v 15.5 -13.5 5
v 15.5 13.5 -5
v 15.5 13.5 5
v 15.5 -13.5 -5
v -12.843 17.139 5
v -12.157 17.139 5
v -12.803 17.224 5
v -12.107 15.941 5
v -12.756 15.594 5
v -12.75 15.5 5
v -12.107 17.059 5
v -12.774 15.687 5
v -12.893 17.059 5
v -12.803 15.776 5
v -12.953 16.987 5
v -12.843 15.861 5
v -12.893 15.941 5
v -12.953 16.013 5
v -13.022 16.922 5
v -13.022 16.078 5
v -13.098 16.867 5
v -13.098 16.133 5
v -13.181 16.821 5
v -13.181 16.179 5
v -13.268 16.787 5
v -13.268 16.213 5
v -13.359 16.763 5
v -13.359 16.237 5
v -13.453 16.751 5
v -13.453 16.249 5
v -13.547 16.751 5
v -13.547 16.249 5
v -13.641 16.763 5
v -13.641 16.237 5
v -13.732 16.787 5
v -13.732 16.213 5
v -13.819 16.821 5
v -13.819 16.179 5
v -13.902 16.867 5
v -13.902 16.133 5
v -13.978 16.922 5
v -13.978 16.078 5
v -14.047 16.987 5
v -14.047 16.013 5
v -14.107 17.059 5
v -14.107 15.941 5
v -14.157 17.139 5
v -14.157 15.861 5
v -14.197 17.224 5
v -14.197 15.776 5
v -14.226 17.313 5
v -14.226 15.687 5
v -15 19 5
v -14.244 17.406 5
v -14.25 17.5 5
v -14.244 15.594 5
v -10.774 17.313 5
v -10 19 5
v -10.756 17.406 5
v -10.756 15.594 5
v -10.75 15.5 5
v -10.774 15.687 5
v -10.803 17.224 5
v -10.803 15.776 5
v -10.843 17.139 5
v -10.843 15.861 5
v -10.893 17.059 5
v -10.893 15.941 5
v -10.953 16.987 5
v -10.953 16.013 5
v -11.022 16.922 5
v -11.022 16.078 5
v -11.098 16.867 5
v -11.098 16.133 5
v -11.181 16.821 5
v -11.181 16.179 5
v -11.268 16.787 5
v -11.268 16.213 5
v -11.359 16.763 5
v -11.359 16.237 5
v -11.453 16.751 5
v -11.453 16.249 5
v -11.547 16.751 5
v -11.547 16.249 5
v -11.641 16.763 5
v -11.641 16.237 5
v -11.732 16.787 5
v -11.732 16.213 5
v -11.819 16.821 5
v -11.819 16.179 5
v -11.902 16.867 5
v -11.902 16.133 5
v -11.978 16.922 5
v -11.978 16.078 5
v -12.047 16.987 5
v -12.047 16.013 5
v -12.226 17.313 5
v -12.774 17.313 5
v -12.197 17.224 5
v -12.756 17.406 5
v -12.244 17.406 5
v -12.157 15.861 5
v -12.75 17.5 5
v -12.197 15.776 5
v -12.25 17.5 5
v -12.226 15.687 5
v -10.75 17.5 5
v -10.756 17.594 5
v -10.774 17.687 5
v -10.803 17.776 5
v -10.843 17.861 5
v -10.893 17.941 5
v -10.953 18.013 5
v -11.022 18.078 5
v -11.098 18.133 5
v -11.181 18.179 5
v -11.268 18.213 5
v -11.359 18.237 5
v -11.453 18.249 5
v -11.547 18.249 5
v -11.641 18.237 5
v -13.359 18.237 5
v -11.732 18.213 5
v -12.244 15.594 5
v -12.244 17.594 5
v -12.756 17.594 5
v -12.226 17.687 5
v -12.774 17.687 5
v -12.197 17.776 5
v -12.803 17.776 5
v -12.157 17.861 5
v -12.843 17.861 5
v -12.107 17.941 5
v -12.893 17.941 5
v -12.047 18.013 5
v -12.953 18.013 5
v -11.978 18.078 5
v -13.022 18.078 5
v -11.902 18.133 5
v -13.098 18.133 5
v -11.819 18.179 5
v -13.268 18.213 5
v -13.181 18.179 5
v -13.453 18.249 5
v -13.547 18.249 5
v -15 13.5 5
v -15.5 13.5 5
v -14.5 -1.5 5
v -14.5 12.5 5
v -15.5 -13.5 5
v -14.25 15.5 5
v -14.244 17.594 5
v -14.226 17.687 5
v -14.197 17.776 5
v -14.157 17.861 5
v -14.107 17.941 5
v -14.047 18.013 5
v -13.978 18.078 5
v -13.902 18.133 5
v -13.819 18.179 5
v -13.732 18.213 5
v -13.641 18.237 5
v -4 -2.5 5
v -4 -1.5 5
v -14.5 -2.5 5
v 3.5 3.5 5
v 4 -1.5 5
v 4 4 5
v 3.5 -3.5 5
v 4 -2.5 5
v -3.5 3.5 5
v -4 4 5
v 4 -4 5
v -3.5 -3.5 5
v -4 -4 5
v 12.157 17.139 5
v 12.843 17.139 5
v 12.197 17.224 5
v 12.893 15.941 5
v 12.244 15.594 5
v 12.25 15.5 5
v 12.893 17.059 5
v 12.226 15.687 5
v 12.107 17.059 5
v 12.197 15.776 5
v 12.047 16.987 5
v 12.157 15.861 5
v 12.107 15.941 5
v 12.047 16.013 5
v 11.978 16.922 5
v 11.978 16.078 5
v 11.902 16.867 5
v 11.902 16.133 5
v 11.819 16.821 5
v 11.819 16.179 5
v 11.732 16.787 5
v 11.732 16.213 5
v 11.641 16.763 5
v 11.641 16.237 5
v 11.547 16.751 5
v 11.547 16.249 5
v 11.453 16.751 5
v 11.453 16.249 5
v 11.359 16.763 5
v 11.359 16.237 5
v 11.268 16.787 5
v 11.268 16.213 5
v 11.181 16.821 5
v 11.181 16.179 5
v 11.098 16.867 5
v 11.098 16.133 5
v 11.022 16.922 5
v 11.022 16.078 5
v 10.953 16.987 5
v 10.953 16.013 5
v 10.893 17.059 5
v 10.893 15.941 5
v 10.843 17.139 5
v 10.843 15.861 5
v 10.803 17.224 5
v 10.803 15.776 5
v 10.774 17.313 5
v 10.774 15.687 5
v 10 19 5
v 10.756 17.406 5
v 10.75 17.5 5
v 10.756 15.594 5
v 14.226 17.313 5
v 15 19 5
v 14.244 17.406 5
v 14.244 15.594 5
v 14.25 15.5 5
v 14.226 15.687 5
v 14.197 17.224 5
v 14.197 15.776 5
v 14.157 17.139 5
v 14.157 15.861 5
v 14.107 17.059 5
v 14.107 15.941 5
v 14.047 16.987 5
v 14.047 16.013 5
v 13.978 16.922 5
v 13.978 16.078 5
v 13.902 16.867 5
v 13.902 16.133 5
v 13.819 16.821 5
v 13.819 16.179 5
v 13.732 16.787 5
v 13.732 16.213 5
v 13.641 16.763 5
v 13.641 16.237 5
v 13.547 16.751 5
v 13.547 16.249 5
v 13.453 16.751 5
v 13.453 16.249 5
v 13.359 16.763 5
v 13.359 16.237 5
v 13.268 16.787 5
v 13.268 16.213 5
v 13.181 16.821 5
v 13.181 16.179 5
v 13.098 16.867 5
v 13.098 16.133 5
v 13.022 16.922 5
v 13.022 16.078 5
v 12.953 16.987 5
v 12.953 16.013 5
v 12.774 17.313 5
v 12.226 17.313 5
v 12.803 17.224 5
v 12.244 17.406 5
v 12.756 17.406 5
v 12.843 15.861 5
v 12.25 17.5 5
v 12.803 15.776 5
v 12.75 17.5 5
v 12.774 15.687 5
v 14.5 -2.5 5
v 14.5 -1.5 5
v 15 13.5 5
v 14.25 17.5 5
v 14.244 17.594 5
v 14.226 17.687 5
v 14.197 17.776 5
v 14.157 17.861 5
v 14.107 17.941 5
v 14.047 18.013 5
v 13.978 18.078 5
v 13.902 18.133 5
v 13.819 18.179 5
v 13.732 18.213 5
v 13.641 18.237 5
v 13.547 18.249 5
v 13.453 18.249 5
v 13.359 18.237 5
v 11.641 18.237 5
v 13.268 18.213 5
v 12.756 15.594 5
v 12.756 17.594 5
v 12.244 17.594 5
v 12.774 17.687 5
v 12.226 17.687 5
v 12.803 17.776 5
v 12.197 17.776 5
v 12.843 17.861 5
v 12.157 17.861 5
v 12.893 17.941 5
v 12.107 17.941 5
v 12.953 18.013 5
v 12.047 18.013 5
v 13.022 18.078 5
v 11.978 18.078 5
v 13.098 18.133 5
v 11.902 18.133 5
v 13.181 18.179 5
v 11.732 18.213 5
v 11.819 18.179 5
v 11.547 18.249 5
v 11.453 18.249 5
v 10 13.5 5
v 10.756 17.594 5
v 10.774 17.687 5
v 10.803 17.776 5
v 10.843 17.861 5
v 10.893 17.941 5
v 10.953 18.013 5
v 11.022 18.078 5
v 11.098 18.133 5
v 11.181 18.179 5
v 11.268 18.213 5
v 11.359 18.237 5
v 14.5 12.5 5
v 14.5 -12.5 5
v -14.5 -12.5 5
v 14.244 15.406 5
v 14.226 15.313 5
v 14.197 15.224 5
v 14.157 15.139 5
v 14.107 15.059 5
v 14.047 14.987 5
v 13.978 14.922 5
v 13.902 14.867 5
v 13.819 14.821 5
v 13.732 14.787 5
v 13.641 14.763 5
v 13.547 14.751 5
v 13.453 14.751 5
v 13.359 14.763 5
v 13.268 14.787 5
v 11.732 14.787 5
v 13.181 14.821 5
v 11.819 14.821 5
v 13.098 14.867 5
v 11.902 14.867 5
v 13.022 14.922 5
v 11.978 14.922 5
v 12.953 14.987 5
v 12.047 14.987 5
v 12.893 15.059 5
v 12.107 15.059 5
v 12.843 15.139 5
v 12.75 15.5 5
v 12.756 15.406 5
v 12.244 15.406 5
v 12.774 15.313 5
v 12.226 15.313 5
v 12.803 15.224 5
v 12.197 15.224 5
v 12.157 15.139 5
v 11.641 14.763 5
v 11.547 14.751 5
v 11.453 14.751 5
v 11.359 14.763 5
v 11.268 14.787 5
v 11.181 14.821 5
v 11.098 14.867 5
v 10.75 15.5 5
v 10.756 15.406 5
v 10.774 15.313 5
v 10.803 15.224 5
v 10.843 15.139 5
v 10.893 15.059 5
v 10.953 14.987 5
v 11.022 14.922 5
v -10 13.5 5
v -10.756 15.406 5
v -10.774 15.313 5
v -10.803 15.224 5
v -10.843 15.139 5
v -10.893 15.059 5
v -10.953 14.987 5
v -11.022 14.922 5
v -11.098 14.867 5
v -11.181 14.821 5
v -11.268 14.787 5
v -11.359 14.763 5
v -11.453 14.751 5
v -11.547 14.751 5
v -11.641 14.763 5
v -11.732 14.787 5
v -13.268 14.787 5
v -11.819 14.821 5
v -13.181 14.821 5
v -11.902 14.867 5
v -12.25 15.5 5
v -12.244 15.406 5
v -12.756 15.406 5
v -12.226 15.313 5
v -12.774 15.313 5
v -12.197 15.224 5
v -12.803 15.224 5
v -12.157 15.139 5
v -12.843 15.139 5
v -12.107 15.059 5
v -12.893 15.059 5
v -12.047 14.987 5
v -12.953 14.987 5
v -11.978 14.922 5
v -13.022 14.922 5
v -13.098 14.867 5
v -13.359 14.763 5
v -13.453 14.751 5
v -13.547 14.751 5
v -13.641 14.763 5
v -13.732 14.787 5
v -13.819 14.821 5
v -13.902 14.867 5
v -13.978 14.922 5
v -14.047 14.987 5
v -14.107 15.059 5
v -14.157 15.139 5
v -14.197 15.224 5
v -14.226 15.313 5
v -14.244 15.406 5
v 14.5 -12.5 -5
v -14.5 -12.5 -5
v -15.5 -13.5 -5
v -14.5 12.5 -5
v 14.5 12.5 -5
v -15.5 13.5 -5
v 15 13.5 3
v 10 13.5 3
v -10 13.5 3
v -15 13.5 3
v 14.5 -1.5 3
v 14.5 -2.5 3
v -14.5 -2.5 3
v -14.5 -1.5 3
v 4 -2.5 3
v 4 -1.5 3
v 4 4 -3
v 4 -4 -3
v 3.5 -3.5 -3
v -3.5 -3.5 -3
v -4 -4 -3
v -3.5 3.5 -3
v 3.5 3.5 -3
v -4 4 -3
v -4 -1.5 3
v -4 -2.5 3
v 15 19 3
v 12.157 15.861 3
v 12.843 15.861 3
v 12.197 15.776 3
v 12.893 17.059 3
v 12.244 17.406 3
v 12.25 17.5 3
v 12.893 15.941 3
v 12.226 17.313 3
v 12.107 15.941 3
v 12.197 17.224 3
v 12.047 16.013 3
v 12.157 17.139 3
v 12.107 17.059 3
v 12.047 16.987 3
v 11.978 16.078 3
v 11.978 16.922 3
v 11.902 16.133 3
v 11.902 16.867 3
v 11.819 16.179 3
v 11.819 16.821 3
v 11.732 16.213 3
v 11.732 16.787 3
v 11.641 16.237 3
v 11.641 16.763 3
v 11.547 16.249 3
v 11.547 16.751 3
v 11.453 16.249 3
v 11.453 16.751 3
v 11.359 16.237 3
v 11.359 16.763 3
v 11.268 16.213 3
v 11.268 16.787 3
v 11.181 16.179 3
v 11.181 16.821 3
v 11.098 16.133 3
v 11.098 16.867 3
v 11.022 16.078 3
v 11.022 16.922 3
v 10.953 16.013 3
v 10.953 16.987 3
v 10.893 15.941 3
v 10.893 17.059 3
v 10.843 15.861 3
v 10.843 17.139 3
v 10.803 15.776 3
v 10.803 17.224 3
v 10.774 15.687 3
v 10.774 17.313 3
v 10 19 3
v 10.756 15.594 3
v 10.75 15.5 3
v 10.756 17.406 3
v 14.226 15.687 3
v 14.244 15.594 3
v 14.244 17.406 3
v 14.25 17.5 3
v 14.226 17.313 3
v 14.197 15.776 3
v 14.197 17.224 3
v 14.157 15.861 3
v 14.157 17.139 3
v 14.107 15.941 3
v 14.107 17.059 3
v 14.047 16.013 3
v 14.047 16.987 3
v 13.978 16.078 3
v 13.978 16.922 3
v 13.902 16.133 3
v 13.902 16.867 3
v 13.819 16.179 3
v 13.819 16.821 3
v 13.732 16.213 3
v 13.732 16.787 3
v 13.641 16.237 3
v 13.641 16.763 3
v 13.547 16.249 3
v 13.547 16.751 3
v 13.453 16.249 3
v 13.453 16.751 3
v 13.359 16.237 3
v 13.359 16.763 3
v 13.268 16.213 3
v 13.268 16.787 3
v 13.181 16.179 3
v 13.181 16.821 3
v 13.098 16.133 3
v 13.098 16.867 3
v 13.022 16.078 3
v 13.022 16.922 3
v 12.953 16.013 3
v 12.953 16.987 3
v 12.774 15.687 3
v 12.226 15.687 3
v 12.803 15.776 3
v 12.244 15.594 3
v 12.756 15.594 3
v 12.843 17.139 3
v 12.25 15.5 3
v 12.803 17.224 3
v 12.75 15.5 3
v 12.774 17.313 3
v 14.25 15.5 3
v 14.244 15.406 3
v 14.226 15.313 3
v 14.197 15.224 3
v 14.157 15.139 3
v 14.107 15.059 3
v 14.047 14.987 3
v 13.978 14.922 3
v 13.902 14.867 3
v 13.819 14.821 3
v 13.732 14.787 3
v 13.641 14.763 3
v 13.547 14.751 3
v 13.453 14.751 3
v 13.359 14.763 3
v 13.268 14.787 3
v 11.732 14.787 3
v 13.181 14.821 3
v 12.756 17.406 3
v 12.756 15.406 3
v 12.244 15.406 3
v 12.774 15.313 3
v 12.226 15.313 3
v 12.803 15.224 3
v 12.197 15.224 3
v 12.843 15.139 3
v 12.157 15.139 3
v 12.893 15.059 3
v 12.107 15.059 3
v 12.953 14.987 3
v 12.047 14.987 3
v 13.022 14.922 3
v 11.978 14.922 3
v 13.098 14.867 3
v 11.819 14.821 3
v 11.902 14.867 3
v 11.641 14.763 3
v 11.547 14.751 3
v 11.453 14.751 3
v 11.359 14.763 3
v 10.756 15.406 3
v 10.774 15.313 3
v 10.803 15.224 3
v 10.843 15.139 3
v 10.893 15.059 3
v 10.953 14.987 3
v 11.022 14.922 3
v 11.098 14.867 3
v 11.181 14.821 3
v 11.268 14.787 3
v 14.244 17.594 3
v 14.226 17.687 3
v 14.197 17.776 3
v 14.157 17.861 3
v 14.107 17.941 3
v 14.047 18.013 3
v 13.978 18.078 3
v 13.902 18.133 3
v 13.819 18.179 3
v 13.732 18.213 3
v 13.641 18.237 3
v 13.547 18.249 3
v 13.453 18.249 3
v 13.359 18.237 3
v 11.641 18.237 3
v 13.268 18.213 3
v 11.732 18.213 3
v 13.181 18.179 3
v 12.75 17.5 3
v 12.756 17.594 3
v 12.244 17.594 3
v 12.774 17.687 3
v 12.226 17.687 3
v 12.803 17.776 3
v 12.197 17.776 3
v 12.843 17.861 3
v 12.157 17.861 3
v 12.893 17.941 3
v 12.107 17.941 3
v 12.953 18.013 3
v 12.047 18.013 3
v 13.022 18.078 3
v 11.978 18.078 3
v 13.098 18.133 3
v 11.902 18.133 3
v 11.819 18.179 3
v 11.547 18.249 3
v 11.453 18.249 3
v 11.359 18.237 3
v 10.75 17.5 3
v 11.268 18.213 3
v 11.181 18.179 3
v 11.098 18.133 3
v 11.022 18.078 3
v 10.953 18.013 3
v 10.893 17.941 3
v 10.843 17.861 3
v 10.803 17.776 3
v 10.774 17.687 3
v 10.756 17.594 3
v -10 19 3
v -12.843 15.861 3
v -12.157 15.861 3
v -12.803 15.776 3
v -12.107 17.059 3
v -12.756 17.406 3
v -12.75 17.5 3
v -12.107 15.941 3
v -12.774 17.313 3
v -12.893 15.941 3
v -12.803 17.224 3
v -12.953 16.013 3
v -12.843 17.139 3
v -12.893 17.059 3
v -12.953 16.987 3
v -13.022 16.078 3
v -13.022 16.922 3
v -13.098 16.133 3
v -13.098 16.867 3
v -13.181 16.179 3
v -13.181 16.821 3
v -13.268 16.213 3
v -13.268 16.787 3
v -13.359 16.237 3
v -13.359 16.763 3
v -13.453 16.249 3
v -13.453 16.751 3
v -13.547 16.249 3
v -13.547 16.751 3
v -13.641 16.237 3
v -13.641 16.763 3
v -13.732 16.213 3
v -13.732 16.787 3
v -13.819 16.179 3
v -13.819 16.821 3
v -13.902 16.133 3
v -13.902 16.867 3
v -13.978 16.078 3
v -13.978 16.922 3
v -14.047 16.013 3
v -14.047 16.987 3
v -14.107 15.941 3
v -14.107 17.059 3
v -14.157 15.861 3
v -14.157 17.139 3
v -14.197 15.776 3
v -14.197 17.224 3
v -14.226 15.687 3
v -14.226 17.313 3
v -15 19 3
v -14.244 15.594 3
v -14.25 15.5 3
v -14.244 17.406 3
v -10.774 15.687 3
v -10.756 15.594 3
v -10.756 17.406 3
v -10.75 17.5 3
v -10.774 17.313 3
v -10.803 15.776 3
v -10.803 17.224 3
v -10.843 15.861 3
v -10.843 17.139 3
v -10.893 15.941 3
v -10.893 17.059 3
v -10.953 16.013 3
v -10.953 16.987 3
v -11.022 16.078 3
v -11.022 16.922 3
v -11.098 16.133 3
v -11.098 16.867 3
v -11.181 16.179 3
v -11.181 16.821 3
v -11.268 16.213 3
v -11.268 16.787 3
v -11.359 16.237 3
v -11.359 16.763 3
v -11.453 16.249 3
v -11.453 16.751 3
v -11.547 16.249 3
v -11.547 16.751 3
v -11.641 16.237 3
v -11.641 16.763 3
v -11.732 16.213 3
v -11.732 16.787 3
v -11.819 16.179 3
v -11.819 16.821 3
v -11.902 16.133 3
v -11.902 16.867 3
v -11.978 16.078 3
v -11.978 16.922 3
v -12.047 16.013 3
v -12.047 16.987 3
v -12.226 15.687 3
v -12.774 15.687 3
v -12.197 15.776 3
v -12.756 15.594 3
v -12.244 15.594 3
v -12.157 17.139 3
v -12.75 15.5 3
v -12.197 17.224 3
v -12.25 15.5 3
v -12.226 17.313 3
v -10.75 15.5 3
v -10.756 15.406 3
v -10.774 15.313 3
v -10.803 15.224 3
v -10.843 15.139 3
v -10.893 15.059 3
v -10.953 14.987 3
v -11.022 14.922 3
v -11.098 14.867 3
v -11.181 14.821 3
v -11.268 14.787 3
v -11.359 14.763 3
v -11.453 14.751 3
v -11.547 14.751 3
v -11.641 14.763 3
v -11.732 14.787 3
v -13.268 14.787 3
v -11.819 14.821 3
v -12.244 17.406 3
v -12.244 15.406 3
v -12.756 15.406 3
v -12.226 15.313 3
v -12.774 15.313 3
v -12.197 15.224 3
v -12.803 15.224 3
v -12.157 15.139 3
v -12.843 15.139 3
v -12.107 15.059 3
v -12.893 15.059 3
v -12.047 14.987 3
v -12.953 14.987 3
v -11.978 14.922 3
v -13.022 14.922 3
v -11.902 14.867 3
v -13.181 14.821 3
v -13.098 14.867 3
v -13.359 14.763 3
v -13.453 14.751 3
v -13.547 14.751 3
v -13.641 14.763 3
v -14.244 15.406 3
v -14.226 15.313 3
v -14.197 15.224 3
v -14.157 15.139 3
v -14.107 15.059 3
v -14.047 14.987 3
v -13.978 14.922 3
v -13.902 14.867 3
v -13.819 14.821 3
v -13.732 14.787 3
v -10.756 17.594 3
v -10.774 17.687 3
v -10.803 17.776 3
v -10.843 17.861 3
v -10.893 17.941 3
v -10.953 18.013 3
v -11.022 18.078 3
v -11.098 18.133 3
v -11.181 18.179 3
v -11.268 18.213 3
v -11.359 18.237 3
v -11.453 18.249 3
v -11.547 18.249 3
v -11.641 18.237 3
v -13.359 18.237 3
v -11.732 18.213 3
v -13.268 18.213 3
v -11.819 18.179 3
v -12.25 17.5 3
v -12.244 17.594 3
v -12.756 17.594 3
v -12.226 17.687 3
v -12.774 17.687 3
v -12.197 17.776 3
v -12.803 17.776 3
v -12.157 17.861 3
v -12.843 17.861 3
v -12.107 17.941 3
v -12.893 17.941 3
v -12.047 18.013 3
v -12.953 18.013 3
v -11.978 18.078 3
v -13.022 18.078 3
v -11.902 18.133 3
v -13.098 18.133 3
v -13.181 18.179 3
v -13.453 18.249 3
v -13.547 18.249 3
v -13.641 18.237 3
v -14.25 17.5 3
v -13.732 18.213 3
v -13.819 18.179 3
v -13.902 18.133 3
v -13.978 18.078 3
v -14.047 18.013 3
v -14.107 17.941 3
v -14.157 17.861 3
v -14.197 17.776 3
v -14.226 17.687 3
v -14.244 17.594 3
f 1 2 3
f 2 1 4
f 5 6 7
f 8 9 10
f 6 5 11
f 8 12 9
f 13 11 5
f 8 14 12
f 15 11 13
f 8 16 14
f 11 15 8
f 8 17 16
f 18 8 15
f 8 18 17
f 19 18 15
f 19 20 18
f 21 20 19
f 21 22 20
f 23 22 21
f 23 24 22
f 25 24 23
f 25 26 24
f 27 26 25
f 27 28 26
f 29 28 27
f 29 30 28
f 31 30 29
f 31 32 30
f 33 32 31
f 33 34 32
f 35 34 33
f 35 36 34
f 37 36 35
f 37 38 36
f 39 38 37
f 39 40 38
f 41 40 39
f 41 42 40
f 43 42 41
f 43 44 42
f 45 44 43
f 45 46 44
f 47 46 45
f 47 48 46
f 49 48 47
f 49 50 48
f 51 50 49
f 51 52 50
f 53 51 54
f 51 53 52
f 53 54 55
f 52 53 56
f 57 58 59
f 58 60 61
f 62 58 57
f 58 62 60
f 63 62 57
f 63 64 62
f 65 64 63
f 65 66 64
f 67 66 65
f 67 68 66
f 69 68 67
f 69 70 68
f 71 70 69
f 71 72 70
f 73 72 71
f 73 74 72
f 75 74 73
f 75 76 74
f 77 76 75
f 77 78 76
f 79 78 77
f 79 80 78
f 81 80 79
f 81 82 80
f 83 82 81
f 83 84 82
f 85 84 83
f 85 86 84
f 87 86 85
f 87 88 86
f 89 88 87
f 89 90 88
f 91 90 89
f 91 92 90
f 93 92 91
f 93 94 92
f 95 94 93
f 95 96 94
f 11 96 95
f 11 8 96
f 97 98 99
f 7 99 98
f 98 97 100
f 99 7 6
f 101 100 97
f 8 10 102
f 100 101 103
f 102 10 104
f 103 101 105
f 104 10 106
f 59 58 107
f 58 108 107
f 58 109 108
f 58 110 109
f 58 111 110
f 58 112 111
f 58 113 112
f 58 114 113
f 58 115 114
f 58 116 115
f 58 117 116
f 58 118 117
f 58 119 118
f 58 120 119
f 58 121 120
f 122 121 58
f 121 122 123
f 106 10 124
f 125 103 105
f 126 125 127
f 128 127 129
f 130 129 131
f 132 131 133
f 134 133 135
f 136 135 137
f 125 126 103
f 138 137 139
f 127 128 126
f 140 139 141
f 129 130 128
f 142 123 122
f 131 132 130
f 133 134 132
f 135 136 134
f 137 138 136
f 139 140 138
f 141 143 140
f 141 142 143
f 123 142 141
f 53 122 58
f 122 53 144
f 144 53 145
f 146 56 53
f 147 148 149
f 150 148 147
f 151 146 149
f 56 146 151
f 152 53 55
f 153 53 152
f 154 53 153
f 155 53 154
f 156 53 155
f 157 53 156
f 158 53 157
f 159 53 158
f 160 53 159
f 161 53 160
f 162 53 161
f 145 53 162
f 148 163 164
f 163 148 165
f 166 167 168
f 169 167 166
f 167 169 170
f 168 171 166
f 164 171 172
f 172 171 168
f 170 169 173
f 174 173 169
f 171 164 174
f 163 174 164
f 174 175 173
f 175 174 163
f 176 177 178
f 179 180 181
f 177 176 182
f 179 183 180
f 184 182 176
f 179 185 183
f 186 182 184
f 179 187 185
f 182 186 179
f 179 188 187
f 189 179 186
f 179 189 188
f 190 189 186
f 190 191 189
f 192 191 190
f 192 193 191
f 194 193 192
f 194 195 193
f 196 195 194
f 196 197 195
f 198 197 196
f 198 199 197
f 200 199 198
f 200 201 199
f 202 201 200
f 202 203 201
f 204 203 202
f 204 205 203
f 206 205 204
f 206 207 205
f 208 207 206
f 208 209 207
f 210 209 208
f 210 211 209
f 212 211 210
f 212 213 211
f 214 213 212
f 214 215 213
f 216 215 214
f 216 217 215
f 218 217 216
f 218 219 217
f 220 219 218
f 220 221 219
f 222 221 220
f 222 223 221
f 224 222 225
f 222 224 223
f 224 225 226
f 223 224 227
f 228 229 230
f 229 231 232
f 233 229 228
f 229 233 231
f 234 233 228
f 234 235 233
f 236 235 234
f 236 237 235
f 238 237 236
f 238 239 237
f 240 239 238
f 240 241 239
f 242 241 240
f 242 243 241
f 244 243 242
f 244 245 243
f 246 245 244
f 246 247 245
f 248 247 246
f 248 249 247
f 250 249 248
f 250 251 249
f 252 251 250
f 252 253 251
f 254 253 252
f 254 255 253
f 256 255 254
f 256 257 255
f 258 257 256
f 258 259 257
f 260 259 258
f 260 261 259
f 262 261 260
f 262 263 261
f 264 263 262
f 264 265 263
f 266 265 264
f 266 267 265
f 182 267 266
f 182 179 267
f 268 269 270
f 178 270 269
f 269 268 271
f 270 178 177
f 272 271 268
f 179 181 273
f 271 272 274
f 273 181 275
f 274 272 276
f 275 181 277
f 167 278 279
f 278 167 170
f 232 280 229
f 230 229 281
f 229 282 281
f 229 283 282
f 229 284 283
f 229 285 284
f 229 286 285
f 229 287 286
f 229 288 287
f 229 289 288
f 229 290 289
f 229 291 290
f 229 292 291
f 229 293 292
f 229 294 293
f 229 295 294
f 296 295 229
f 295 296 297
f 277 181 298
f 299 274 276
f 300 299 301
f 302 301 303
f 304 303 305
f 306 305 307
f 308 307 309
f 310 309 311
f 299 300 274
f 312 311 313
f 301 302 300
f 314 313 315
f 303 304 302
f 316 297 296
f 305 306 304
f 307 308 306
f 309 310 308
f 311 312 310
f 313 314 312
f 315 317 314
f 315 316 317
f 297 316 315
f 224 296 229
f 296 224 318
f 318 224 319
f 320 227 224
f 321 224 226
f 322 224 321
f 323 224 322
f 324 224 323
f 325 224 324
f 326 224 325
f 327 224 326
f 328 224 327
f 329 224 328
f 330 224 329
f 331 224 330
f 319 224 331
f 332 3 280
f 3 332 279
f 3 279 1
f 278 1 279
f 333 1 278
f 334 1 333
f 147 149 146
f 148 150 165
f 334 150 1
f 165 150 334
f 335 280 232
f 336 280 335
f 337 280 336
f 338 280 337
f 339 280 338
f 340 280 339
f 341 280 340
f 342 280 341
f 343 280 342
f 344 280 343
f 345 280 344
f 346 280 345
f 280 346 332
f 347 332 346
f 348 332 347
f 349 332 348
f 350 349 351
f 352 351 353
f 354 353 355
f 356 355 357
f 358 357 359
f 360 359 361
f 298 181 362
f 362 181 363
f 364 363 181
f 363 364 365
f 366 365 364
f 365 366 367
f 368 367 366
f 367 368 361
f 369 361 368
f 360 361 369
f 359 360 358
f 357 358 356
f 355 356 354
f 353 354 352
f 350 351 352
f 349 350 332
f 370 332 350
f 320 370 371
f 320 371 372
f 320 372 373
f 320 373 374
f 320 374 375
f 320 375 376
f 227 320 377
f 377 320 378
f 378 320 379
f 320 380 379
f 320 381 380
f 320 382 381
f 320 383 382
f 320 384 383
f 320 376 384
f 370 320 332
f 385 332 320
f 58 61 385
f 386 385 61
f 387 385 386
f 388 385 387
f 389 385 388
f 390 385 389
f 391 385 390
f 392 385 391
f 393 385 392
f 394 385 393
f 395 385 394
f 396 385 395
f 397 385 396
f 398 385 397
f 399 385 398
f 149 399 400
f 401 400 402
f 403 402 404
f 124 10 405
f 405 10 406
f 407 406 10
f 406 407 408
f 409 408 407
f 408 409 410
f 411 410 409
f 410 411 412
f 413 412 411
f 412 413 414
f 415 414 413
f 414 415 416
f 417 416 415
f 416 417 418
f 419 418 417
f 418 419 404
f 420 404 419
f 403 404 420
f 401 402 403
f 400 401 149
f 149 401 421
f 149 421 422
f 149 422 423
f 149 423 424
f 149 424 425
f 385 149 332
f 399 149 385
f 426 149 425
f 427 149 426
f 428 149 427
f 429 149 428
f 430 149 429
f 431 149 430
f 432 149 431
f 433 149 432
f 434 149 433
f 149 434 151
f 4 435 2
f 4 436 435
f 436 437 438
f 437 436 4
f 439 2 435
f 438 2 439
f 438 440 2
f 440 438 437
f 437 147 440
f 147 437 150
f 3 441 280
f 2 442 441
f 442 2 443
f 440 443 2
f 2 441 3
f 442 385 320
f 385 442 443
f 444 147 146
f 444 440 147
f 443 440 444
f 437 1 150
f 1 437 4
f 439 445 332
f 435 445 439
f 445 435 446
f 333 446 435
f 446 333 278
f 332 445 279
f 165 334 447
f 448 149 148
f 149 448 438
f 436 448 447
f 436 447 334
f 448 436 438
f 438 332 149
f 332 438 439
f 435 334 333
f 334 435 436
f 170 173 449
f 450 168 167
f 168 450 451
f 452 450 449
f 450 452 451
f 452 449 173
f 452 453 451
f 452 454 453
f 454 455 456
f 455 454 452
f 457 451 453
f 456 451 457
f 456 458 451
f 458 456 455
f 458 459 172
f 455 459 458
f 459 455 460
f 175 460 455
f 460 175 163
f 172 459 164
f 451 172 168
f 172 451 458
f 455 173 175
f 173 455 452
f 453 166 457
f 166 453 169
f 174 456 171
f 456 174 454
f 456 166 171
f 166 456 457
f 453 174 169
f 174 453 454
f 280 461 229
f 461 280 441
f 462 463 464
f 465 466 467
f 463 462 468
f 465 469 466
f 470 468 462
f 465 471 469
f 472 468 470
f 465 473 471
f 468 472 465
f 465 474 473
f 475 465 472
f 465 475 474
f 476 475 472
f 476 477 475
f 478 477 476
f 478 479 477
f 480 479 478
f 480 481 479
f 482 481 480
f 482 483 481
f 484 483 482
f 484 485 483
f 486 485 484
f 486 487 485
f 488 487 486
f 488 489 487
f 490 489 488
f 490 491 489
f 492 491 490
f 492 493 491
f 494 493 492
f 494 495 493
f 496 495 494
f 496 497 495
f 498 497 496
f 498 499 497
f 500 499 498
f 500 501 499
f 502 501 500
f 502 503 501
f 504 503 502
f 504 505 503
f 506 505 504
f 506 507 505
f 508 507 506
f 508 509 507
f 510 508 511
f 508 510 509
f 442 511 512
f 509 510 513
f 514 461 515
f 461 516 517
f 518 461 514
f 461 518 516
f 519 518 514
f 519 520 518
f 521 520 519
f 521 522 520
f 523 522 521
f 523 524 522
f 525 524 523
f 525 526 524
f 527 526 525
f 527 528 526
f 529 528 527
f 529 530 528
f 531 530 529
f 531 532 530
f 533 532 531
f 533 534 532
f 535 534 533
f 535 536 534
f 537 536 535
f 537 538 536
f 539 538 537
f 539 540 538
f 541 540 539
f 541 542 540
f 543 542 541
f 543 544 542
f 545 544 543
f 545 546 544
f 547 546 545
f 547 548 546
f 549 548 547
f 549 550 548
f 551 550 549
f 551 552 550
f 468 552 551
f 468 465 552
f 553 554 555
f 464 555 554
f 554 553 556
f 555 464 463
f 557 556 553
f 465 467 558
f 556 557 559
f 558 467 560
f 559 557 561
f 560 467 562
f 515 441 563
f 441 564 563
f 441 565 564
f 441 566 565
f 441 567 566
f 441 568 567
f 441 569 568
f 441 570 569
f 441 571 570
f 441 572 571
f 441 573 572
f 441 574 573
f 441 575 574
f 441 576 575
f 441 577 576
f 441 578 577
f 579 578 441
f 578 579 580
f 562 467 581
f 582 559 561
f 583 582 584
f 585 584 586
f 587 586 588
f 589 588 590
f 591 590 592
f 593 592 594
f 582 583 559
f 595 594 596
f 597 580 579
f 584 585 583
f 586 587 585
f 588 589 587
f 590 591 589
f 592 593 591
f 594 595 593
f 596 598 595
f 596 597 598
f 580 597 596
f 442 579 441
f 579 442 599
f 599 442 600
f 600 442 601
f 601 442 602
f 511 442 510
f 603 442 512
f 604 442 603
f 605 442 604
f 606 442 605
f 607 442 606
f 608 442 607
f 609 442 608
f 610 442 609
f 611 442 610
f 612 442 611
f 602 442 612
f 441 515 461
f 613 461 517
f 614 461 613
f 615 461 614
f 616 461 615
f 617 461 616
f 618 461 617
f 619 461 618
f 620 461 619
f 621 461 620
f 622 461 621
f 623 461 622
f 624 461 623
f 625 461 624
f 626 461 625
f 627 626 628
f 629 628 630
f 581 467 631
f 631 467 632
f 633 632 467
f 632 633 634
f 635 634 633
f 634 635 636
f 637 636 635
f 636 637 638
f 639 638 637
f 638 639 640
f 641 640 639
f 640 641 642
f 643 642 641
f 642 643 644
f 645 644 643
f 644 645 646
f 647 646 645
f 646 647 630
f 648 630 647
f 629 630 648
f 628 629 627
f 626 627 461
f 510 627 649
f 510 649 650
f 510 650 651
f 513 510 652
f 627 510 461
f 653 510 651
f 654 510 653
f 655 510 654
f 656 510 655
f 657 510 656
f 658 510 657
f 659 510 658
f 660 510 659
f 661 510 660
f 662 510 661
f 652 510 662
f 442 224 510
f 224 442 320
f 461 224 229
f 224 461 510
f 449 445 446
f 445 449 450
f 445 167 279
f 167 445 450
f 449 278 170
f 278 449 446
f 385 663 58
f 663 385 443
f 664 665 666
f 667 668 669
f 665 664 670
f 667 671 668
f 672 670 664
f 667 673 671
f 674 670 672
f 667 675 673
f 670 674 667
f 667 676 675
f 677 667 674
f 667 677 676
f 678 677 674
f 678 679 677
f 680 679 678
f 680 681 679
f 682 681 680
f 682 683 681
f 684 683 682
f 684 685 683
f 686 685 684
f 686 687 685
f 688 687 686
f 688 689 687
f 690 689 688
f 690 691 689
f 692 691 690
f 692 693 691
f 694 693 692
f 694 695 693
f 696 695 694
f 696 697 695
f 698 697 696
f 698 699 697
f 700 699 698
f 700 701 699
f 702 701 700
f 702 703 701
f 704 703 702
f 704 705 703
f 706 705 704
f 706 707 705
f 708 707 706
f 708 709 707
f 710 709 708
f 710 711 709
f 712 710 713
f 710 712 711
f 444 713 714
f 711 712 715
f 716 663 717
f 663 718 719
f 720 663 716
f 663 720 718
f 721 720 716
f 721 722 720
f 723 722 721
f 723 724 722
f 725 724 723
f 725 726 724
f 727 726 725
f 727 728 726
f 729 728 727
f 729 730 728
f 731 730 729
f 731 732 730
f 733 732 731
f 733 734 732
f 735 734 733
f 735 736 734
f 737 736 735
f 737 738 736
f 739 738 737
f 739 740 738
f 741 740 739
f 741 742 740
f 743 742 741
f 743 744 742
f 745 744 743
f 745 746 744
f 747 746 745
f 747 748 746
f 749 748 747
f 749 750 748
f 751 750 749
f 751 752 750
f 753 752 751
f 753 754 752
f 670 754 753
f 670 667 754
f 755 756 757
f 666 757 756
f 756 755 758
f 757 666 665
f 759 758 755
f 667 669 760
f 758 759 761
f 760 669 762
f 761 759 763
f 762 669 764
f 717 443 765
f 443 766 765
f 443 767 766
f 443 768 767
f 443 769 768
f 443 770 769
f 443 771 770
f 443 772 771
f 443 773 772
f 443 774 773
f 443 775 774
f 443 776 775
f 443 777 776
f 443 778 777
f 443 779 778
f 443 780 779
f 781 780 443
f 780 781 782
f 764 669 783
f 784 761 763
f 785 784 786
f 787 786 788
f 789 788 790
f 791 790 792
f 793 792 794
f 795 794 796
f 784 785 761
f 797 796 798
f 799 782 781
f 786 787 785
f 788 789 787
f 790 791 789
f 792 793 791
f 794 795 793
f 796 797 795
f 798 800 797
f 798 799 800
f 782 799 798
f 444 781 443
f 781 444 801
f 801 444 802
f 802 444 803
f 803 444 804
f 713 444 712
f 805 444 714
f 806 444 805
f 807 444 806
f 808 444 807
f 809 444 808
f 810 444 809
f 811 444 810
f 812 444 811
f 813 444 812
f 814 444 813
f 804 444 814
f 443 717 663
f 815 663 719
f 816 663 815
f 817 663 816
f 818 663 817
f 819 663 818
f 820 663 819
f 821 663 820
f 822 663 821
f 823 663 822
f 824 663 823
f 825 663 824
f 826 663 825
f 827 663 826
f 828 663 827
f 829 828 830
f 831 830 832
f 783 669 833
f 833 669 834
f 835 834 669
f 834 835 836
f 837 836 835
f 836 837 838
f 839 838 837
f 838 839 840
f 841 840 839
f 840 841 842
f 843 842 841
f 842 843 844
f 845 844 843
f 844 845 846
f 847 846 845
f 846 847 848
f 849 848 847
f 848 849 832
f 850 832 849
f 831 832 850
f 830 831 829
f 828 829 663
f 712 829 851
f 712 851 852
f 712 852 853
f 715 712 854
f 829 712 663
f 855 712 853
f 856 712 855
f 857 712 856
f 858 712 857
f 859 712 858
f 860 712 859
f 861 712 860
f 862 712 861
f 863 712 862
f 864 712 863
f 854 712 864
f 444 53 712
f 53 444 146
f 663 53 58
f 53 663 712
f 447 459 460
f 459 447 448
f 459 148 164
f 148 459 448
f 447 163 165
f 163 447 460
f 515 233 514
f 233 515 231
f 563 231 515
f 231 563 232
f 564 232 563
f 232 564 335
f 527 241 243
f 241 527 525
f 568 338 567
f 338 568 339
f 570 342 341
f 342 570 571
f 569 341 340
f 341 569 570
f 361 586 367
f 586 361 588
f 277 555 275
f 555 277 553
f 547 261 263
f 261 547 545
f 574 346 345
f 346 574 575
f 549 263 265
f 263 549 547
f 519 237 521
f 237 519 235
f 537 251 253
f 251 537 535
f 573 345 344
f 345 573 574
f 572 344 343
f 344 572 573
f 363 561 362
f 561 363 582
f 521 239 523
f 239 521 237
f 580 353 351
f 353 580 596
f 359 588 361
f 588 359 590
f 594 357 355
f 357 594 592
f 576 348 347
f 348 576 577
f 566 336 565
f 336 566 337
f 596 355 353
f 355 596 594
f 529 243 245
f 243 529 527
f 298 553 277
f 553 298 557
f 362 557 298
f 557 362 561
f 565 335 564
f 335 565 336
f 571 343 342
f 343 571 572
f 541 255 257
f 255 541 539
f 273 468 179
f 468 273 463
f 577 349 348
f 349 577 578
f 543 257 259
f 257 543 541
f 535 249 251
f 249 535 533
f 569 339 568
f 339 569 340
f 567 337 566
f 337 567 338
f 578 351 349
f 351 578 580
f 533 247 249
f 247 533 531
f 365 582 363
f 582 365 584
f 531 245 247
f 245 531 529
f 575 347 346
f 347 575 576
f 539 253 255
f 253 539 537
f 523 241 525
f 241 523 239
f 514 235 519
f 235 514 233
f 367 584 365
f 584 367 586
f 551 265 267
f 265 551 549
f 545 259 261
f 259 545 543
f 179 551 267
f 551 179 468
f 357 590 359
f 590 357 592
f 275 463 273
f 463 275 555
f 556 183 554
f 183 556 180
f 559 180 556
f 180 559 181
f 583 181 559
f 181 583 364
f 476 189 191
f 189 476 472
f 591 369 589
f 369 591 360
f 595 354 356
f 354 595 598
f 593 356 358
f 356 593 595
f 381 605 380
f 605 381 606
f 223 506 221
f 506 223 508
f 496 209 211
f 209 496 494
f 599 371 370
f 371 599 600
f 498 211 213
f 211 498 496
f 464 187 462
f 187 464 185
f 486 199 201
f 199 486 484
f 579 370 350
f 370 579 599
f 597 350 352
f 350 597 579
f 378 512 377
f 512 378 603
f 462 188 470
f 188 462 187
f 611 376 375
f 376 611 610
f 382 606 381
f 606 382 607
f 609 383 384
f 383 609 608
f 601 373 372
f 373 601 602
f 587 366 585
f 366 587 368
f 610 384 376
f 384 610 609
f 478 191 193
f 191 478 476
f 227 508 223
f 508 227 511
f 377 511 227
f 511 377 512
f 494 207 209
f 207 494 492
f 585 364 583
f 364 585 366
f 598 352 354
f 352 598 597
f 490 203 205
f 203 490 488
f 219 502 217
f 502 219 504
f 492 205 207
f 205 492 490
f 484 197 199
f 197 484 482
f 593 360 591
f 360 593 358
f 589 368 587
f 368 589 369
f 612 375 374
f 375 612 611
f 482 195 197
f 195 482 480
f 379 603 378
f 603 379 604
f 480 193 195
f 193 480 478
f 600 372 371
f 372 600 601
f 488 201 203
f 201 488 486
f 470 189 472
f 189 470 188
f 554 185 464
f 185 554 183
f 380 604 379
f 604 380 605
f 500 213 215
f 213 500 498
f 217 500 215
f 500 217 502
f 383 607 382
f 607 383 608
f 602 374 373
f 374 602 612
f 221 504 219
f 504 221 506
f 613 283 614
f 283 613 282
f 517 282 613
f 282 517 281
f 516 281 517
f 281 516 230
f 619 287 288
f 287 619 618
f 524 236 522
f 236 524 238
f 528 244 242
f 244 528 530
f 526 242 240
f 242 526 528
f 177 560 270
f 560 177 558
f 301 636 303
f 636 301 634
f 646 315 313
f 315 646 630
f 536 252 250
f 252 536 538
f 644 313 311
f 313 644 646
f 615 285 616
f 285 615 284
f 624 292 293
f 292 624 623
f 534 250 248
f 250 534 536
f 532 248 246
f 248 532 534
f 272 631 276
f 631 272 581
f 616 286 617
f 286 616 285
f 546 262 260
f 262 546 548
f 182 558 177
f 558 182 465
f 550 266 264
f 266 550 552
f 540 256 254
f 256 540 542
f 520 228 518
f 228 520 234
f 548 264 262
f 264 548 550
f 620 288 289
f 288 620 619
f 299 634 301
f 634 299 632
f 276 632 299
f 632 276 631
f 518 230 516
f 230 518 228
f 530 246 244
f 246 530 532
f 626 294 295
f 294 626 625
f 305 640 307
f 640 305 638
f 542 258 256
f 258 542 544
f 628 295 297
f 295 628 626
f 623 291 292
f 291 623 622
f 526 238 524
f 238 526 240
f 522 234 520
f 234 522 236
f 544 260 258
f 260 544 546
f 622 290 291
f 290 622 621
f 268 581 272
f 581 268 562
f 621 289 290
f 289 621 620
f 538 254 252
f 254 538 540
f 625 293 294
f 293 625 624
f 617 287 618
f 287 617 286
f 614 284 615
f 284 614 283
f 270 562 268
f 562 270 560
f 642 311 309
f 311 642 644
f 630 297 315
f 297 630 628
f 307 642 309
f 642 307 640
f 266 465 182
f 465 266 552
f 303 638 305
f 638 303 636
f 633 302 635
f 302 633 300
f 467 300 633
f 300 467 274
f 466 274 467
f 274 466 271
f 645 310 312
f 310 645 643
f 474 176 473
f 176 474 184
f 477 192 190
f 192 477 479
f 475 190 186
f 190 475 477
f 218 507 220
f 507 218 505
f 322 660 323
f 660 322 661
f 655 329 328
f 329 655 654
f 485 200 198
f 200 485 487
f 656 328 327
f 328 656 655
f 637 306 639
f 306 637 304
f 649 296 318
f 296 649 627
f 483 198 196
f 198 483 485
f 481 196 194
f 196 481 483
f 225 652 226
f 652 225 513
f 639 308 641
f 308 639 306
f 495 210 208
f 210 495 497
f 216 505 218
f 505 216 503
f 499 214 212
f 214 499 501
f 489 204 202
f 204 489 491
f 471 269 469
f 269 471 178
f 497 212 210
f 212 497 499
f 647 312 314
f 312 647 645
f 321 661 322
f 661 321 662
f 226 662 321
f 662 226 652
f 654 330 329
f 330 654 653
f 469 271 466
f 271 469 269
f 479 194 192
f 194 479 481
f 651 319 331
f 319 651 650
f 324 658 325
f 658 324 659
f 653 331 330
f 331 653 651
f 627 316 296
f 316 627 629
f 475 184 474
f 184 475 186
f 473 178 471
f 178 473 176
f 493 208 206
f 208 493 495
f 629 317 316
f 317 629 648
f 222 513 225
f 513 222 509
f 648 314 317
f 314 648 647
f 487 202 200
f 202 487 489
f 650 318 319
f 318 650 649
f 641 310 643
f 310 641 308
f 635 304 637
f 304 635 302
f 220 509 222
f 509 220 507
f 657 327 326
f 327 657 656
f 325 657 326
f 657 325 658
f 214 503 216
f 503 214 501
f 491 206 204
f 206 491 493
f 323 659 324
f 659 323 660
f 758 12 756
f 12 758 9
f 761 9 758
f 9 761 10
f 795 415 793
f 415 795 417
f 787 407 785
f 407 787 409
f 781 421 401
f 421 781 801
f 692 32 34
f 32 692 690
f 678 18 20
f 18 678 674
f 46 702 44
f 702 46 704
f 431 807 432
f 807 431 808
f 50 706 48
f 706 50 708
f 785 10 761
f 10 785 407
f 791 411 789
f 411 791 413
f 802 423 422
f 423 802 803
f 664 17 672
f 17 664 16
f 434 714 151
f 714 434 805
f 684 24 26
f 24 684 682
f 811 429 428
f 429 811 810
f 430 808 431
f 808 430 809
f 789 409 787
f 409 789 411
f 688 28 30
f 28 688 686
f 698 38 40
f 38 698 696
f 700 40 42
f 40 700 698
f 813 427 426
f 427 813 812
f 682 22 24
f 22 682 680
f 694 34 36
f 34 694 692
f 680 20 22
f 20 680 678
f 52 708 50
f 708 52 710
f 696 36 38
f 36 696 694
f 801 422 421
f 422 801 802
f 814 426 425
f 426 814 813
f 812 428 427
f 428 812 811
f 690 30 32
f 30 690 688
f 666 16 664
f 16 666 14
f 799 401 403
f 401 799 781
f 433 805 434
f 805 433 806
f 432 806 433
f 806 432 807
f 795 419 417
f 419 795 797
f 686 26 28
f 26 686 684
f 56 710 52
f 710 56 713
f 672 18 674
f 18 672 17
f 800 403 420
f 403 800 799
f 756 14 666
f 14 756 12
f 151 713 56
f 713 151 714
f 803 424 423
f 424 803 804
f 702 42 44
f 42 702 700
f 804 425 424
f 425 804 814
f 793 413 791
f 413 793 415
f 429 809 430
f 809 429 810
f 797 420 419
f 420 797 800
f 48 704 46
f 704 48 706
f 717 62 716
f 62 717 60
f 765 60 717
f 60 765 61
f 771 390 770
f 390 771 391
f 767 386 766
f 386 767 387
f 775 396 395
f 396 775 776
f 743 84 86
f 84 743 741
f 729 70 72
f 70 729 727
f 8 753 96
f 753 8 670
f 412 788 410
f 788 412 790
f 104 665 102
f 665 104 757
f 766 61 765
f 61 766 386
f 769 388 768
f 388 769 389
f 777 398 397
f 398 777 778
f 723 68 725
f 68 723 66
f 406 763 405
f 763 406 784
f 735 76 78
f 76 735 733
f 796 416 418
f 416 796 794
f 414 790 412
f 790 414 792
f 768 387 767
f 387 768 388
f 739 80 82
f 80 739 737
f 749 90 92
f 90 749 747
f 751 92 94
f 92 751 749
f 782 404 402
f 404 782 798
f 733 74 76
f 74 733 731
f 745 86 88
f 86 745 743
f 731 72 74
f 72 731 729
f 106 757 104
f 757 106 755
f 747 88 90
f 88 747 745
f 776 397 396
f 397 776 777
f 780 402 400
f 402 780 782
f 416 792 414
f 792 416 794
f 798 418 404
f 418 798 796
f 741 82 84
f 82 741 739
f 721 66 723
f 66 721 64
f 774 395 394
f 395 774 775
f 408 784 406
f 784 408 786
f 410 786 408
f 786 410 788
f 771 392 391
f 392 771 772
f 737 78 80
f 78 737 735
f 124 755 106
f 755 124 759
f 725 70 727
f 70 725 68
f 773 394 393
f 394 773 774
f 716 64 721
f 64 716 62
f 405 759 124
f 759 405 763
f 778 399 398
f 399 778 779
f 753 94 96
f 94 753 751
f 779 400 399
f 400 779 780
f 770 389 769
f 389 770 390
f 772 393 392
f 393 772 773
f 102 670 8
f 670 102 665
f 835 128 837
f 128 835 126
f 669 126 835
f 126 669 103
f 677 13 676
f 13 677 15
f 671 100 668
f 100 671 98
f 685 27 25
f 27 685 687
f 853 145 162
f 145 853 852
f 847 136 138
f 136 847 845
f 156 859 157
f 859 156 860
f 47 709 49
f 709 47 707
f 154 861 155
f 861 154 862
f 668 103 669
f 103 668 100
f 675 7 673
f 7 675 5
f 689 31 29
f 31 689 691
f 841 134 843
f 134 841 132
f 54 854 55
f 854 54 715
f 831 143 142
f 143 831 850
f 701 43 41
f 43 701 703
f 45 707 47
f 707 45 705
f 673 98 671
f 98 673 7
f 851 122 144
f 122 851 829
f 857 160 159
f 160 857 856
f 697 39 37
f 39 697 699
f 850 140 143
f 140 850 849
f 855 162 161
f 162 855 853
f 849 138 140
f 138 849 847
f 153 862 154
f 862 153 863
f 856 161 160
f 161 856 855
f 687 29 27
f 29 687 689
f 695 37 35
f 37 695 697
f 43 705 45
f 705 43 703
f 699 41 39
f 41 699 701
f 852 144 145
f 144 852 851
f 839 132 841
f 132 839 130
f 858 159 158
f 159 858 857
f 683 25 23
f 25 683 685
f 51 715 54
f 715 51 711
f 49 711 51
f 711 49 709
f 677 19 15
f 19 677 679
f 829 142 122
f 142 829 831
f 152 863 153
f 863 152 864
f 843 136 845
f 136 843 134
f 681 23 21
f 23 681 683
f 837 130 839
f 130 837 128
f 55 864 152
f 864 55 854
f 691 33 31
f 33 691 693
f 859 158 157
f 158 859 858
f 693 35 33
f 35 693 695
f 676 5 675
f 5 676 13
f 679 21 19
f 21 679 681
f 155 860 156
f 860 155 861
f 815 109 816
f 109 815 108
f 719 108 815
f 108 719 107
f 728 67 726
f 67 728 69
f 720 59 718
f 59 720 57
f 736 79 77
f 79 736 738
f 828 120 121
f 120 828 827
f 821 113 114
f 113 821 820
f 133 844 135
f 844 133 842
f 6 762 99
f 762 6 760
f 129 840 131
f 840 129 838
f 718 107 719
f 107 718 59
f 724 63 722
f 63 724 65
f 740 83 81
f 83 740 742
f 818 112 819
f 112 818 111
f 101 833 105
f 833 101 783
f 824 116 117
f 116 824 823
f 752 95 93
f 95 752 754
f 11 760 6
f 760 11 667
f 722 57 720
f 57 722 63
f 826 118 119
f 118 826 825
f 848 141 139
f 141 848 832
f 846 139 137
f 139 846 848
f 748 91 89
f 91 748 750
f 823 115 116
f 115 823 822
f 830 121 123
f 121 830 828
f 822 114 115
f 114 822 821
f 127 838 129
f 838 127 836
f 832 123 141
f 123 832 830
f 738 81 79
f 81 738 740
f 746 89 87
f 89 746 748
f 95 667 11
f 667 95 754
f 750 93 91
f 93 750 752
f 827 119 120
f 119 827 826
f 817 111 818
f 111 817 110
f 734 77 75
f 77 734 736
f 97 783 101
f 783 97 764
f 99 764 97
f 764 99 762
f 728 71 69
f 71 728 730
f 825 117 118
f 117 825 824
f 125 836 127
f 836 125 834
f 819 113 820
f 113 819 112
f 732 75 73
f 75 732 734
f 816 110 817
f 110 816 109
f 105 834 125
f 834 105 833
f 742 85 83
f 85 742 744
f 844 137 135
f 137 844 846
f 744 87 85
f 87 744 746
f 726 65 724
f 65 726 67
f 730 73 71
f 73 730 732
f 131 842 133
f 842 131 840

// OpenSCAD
$fn=50;

sensor_hull();

module sensor_hull(){
    difference(){
        cube([31,27,10], true);
        cube([29,25,12], true);
    }
    difference()
    {
        translate([0,0,1])cube([8,8,8], true);
        cube([7,7,12], true);
      
    }
    
    difference(){
        union(){        
            translate([30/2-5,13,5-2])cube([5,6,2]);
            translate([30/2-11,-2.5,5-2])cube([11,1,2]);
            
            translate([-30/2,13,5-2])cube([5,6,2]);
            translate([-30/2,-2.5,5-2])cube([11,1,2]);
        }
        union()
        {
            translate([13.5,15.5,5])rotate([0,0,0])cylinder(5,d=1.5,center=true);
            translate([11.5,15.5,5])rotate([0,0,0])cylinder(5,d=1.5,center=true);
            translate([13.5,17.5,5])rotate([0,0,0])cylinder(5,d=1.5,center=true);
            translate([11.5,17.5,5])rotate([0,0,0])cylinder(5,d=1.5,center=true);
            
            translate([-13.5,15.5,5])rotate([0,0,0])cylinder(5,d=1.5,center=true);
            translate([-11.5,15.5,5])rotate([0,0,0])cylinder(5,d=1.5,center=true);
            translate([-13.5,17.5,5])rotate([0,0,0])cylinder(5,d=1.5,center=true);
            translate([-11.5,17.5,5])rotate([0,0,0])cylinder(5,d=1.5,center=true);
        }
    }
    

    
    

}
